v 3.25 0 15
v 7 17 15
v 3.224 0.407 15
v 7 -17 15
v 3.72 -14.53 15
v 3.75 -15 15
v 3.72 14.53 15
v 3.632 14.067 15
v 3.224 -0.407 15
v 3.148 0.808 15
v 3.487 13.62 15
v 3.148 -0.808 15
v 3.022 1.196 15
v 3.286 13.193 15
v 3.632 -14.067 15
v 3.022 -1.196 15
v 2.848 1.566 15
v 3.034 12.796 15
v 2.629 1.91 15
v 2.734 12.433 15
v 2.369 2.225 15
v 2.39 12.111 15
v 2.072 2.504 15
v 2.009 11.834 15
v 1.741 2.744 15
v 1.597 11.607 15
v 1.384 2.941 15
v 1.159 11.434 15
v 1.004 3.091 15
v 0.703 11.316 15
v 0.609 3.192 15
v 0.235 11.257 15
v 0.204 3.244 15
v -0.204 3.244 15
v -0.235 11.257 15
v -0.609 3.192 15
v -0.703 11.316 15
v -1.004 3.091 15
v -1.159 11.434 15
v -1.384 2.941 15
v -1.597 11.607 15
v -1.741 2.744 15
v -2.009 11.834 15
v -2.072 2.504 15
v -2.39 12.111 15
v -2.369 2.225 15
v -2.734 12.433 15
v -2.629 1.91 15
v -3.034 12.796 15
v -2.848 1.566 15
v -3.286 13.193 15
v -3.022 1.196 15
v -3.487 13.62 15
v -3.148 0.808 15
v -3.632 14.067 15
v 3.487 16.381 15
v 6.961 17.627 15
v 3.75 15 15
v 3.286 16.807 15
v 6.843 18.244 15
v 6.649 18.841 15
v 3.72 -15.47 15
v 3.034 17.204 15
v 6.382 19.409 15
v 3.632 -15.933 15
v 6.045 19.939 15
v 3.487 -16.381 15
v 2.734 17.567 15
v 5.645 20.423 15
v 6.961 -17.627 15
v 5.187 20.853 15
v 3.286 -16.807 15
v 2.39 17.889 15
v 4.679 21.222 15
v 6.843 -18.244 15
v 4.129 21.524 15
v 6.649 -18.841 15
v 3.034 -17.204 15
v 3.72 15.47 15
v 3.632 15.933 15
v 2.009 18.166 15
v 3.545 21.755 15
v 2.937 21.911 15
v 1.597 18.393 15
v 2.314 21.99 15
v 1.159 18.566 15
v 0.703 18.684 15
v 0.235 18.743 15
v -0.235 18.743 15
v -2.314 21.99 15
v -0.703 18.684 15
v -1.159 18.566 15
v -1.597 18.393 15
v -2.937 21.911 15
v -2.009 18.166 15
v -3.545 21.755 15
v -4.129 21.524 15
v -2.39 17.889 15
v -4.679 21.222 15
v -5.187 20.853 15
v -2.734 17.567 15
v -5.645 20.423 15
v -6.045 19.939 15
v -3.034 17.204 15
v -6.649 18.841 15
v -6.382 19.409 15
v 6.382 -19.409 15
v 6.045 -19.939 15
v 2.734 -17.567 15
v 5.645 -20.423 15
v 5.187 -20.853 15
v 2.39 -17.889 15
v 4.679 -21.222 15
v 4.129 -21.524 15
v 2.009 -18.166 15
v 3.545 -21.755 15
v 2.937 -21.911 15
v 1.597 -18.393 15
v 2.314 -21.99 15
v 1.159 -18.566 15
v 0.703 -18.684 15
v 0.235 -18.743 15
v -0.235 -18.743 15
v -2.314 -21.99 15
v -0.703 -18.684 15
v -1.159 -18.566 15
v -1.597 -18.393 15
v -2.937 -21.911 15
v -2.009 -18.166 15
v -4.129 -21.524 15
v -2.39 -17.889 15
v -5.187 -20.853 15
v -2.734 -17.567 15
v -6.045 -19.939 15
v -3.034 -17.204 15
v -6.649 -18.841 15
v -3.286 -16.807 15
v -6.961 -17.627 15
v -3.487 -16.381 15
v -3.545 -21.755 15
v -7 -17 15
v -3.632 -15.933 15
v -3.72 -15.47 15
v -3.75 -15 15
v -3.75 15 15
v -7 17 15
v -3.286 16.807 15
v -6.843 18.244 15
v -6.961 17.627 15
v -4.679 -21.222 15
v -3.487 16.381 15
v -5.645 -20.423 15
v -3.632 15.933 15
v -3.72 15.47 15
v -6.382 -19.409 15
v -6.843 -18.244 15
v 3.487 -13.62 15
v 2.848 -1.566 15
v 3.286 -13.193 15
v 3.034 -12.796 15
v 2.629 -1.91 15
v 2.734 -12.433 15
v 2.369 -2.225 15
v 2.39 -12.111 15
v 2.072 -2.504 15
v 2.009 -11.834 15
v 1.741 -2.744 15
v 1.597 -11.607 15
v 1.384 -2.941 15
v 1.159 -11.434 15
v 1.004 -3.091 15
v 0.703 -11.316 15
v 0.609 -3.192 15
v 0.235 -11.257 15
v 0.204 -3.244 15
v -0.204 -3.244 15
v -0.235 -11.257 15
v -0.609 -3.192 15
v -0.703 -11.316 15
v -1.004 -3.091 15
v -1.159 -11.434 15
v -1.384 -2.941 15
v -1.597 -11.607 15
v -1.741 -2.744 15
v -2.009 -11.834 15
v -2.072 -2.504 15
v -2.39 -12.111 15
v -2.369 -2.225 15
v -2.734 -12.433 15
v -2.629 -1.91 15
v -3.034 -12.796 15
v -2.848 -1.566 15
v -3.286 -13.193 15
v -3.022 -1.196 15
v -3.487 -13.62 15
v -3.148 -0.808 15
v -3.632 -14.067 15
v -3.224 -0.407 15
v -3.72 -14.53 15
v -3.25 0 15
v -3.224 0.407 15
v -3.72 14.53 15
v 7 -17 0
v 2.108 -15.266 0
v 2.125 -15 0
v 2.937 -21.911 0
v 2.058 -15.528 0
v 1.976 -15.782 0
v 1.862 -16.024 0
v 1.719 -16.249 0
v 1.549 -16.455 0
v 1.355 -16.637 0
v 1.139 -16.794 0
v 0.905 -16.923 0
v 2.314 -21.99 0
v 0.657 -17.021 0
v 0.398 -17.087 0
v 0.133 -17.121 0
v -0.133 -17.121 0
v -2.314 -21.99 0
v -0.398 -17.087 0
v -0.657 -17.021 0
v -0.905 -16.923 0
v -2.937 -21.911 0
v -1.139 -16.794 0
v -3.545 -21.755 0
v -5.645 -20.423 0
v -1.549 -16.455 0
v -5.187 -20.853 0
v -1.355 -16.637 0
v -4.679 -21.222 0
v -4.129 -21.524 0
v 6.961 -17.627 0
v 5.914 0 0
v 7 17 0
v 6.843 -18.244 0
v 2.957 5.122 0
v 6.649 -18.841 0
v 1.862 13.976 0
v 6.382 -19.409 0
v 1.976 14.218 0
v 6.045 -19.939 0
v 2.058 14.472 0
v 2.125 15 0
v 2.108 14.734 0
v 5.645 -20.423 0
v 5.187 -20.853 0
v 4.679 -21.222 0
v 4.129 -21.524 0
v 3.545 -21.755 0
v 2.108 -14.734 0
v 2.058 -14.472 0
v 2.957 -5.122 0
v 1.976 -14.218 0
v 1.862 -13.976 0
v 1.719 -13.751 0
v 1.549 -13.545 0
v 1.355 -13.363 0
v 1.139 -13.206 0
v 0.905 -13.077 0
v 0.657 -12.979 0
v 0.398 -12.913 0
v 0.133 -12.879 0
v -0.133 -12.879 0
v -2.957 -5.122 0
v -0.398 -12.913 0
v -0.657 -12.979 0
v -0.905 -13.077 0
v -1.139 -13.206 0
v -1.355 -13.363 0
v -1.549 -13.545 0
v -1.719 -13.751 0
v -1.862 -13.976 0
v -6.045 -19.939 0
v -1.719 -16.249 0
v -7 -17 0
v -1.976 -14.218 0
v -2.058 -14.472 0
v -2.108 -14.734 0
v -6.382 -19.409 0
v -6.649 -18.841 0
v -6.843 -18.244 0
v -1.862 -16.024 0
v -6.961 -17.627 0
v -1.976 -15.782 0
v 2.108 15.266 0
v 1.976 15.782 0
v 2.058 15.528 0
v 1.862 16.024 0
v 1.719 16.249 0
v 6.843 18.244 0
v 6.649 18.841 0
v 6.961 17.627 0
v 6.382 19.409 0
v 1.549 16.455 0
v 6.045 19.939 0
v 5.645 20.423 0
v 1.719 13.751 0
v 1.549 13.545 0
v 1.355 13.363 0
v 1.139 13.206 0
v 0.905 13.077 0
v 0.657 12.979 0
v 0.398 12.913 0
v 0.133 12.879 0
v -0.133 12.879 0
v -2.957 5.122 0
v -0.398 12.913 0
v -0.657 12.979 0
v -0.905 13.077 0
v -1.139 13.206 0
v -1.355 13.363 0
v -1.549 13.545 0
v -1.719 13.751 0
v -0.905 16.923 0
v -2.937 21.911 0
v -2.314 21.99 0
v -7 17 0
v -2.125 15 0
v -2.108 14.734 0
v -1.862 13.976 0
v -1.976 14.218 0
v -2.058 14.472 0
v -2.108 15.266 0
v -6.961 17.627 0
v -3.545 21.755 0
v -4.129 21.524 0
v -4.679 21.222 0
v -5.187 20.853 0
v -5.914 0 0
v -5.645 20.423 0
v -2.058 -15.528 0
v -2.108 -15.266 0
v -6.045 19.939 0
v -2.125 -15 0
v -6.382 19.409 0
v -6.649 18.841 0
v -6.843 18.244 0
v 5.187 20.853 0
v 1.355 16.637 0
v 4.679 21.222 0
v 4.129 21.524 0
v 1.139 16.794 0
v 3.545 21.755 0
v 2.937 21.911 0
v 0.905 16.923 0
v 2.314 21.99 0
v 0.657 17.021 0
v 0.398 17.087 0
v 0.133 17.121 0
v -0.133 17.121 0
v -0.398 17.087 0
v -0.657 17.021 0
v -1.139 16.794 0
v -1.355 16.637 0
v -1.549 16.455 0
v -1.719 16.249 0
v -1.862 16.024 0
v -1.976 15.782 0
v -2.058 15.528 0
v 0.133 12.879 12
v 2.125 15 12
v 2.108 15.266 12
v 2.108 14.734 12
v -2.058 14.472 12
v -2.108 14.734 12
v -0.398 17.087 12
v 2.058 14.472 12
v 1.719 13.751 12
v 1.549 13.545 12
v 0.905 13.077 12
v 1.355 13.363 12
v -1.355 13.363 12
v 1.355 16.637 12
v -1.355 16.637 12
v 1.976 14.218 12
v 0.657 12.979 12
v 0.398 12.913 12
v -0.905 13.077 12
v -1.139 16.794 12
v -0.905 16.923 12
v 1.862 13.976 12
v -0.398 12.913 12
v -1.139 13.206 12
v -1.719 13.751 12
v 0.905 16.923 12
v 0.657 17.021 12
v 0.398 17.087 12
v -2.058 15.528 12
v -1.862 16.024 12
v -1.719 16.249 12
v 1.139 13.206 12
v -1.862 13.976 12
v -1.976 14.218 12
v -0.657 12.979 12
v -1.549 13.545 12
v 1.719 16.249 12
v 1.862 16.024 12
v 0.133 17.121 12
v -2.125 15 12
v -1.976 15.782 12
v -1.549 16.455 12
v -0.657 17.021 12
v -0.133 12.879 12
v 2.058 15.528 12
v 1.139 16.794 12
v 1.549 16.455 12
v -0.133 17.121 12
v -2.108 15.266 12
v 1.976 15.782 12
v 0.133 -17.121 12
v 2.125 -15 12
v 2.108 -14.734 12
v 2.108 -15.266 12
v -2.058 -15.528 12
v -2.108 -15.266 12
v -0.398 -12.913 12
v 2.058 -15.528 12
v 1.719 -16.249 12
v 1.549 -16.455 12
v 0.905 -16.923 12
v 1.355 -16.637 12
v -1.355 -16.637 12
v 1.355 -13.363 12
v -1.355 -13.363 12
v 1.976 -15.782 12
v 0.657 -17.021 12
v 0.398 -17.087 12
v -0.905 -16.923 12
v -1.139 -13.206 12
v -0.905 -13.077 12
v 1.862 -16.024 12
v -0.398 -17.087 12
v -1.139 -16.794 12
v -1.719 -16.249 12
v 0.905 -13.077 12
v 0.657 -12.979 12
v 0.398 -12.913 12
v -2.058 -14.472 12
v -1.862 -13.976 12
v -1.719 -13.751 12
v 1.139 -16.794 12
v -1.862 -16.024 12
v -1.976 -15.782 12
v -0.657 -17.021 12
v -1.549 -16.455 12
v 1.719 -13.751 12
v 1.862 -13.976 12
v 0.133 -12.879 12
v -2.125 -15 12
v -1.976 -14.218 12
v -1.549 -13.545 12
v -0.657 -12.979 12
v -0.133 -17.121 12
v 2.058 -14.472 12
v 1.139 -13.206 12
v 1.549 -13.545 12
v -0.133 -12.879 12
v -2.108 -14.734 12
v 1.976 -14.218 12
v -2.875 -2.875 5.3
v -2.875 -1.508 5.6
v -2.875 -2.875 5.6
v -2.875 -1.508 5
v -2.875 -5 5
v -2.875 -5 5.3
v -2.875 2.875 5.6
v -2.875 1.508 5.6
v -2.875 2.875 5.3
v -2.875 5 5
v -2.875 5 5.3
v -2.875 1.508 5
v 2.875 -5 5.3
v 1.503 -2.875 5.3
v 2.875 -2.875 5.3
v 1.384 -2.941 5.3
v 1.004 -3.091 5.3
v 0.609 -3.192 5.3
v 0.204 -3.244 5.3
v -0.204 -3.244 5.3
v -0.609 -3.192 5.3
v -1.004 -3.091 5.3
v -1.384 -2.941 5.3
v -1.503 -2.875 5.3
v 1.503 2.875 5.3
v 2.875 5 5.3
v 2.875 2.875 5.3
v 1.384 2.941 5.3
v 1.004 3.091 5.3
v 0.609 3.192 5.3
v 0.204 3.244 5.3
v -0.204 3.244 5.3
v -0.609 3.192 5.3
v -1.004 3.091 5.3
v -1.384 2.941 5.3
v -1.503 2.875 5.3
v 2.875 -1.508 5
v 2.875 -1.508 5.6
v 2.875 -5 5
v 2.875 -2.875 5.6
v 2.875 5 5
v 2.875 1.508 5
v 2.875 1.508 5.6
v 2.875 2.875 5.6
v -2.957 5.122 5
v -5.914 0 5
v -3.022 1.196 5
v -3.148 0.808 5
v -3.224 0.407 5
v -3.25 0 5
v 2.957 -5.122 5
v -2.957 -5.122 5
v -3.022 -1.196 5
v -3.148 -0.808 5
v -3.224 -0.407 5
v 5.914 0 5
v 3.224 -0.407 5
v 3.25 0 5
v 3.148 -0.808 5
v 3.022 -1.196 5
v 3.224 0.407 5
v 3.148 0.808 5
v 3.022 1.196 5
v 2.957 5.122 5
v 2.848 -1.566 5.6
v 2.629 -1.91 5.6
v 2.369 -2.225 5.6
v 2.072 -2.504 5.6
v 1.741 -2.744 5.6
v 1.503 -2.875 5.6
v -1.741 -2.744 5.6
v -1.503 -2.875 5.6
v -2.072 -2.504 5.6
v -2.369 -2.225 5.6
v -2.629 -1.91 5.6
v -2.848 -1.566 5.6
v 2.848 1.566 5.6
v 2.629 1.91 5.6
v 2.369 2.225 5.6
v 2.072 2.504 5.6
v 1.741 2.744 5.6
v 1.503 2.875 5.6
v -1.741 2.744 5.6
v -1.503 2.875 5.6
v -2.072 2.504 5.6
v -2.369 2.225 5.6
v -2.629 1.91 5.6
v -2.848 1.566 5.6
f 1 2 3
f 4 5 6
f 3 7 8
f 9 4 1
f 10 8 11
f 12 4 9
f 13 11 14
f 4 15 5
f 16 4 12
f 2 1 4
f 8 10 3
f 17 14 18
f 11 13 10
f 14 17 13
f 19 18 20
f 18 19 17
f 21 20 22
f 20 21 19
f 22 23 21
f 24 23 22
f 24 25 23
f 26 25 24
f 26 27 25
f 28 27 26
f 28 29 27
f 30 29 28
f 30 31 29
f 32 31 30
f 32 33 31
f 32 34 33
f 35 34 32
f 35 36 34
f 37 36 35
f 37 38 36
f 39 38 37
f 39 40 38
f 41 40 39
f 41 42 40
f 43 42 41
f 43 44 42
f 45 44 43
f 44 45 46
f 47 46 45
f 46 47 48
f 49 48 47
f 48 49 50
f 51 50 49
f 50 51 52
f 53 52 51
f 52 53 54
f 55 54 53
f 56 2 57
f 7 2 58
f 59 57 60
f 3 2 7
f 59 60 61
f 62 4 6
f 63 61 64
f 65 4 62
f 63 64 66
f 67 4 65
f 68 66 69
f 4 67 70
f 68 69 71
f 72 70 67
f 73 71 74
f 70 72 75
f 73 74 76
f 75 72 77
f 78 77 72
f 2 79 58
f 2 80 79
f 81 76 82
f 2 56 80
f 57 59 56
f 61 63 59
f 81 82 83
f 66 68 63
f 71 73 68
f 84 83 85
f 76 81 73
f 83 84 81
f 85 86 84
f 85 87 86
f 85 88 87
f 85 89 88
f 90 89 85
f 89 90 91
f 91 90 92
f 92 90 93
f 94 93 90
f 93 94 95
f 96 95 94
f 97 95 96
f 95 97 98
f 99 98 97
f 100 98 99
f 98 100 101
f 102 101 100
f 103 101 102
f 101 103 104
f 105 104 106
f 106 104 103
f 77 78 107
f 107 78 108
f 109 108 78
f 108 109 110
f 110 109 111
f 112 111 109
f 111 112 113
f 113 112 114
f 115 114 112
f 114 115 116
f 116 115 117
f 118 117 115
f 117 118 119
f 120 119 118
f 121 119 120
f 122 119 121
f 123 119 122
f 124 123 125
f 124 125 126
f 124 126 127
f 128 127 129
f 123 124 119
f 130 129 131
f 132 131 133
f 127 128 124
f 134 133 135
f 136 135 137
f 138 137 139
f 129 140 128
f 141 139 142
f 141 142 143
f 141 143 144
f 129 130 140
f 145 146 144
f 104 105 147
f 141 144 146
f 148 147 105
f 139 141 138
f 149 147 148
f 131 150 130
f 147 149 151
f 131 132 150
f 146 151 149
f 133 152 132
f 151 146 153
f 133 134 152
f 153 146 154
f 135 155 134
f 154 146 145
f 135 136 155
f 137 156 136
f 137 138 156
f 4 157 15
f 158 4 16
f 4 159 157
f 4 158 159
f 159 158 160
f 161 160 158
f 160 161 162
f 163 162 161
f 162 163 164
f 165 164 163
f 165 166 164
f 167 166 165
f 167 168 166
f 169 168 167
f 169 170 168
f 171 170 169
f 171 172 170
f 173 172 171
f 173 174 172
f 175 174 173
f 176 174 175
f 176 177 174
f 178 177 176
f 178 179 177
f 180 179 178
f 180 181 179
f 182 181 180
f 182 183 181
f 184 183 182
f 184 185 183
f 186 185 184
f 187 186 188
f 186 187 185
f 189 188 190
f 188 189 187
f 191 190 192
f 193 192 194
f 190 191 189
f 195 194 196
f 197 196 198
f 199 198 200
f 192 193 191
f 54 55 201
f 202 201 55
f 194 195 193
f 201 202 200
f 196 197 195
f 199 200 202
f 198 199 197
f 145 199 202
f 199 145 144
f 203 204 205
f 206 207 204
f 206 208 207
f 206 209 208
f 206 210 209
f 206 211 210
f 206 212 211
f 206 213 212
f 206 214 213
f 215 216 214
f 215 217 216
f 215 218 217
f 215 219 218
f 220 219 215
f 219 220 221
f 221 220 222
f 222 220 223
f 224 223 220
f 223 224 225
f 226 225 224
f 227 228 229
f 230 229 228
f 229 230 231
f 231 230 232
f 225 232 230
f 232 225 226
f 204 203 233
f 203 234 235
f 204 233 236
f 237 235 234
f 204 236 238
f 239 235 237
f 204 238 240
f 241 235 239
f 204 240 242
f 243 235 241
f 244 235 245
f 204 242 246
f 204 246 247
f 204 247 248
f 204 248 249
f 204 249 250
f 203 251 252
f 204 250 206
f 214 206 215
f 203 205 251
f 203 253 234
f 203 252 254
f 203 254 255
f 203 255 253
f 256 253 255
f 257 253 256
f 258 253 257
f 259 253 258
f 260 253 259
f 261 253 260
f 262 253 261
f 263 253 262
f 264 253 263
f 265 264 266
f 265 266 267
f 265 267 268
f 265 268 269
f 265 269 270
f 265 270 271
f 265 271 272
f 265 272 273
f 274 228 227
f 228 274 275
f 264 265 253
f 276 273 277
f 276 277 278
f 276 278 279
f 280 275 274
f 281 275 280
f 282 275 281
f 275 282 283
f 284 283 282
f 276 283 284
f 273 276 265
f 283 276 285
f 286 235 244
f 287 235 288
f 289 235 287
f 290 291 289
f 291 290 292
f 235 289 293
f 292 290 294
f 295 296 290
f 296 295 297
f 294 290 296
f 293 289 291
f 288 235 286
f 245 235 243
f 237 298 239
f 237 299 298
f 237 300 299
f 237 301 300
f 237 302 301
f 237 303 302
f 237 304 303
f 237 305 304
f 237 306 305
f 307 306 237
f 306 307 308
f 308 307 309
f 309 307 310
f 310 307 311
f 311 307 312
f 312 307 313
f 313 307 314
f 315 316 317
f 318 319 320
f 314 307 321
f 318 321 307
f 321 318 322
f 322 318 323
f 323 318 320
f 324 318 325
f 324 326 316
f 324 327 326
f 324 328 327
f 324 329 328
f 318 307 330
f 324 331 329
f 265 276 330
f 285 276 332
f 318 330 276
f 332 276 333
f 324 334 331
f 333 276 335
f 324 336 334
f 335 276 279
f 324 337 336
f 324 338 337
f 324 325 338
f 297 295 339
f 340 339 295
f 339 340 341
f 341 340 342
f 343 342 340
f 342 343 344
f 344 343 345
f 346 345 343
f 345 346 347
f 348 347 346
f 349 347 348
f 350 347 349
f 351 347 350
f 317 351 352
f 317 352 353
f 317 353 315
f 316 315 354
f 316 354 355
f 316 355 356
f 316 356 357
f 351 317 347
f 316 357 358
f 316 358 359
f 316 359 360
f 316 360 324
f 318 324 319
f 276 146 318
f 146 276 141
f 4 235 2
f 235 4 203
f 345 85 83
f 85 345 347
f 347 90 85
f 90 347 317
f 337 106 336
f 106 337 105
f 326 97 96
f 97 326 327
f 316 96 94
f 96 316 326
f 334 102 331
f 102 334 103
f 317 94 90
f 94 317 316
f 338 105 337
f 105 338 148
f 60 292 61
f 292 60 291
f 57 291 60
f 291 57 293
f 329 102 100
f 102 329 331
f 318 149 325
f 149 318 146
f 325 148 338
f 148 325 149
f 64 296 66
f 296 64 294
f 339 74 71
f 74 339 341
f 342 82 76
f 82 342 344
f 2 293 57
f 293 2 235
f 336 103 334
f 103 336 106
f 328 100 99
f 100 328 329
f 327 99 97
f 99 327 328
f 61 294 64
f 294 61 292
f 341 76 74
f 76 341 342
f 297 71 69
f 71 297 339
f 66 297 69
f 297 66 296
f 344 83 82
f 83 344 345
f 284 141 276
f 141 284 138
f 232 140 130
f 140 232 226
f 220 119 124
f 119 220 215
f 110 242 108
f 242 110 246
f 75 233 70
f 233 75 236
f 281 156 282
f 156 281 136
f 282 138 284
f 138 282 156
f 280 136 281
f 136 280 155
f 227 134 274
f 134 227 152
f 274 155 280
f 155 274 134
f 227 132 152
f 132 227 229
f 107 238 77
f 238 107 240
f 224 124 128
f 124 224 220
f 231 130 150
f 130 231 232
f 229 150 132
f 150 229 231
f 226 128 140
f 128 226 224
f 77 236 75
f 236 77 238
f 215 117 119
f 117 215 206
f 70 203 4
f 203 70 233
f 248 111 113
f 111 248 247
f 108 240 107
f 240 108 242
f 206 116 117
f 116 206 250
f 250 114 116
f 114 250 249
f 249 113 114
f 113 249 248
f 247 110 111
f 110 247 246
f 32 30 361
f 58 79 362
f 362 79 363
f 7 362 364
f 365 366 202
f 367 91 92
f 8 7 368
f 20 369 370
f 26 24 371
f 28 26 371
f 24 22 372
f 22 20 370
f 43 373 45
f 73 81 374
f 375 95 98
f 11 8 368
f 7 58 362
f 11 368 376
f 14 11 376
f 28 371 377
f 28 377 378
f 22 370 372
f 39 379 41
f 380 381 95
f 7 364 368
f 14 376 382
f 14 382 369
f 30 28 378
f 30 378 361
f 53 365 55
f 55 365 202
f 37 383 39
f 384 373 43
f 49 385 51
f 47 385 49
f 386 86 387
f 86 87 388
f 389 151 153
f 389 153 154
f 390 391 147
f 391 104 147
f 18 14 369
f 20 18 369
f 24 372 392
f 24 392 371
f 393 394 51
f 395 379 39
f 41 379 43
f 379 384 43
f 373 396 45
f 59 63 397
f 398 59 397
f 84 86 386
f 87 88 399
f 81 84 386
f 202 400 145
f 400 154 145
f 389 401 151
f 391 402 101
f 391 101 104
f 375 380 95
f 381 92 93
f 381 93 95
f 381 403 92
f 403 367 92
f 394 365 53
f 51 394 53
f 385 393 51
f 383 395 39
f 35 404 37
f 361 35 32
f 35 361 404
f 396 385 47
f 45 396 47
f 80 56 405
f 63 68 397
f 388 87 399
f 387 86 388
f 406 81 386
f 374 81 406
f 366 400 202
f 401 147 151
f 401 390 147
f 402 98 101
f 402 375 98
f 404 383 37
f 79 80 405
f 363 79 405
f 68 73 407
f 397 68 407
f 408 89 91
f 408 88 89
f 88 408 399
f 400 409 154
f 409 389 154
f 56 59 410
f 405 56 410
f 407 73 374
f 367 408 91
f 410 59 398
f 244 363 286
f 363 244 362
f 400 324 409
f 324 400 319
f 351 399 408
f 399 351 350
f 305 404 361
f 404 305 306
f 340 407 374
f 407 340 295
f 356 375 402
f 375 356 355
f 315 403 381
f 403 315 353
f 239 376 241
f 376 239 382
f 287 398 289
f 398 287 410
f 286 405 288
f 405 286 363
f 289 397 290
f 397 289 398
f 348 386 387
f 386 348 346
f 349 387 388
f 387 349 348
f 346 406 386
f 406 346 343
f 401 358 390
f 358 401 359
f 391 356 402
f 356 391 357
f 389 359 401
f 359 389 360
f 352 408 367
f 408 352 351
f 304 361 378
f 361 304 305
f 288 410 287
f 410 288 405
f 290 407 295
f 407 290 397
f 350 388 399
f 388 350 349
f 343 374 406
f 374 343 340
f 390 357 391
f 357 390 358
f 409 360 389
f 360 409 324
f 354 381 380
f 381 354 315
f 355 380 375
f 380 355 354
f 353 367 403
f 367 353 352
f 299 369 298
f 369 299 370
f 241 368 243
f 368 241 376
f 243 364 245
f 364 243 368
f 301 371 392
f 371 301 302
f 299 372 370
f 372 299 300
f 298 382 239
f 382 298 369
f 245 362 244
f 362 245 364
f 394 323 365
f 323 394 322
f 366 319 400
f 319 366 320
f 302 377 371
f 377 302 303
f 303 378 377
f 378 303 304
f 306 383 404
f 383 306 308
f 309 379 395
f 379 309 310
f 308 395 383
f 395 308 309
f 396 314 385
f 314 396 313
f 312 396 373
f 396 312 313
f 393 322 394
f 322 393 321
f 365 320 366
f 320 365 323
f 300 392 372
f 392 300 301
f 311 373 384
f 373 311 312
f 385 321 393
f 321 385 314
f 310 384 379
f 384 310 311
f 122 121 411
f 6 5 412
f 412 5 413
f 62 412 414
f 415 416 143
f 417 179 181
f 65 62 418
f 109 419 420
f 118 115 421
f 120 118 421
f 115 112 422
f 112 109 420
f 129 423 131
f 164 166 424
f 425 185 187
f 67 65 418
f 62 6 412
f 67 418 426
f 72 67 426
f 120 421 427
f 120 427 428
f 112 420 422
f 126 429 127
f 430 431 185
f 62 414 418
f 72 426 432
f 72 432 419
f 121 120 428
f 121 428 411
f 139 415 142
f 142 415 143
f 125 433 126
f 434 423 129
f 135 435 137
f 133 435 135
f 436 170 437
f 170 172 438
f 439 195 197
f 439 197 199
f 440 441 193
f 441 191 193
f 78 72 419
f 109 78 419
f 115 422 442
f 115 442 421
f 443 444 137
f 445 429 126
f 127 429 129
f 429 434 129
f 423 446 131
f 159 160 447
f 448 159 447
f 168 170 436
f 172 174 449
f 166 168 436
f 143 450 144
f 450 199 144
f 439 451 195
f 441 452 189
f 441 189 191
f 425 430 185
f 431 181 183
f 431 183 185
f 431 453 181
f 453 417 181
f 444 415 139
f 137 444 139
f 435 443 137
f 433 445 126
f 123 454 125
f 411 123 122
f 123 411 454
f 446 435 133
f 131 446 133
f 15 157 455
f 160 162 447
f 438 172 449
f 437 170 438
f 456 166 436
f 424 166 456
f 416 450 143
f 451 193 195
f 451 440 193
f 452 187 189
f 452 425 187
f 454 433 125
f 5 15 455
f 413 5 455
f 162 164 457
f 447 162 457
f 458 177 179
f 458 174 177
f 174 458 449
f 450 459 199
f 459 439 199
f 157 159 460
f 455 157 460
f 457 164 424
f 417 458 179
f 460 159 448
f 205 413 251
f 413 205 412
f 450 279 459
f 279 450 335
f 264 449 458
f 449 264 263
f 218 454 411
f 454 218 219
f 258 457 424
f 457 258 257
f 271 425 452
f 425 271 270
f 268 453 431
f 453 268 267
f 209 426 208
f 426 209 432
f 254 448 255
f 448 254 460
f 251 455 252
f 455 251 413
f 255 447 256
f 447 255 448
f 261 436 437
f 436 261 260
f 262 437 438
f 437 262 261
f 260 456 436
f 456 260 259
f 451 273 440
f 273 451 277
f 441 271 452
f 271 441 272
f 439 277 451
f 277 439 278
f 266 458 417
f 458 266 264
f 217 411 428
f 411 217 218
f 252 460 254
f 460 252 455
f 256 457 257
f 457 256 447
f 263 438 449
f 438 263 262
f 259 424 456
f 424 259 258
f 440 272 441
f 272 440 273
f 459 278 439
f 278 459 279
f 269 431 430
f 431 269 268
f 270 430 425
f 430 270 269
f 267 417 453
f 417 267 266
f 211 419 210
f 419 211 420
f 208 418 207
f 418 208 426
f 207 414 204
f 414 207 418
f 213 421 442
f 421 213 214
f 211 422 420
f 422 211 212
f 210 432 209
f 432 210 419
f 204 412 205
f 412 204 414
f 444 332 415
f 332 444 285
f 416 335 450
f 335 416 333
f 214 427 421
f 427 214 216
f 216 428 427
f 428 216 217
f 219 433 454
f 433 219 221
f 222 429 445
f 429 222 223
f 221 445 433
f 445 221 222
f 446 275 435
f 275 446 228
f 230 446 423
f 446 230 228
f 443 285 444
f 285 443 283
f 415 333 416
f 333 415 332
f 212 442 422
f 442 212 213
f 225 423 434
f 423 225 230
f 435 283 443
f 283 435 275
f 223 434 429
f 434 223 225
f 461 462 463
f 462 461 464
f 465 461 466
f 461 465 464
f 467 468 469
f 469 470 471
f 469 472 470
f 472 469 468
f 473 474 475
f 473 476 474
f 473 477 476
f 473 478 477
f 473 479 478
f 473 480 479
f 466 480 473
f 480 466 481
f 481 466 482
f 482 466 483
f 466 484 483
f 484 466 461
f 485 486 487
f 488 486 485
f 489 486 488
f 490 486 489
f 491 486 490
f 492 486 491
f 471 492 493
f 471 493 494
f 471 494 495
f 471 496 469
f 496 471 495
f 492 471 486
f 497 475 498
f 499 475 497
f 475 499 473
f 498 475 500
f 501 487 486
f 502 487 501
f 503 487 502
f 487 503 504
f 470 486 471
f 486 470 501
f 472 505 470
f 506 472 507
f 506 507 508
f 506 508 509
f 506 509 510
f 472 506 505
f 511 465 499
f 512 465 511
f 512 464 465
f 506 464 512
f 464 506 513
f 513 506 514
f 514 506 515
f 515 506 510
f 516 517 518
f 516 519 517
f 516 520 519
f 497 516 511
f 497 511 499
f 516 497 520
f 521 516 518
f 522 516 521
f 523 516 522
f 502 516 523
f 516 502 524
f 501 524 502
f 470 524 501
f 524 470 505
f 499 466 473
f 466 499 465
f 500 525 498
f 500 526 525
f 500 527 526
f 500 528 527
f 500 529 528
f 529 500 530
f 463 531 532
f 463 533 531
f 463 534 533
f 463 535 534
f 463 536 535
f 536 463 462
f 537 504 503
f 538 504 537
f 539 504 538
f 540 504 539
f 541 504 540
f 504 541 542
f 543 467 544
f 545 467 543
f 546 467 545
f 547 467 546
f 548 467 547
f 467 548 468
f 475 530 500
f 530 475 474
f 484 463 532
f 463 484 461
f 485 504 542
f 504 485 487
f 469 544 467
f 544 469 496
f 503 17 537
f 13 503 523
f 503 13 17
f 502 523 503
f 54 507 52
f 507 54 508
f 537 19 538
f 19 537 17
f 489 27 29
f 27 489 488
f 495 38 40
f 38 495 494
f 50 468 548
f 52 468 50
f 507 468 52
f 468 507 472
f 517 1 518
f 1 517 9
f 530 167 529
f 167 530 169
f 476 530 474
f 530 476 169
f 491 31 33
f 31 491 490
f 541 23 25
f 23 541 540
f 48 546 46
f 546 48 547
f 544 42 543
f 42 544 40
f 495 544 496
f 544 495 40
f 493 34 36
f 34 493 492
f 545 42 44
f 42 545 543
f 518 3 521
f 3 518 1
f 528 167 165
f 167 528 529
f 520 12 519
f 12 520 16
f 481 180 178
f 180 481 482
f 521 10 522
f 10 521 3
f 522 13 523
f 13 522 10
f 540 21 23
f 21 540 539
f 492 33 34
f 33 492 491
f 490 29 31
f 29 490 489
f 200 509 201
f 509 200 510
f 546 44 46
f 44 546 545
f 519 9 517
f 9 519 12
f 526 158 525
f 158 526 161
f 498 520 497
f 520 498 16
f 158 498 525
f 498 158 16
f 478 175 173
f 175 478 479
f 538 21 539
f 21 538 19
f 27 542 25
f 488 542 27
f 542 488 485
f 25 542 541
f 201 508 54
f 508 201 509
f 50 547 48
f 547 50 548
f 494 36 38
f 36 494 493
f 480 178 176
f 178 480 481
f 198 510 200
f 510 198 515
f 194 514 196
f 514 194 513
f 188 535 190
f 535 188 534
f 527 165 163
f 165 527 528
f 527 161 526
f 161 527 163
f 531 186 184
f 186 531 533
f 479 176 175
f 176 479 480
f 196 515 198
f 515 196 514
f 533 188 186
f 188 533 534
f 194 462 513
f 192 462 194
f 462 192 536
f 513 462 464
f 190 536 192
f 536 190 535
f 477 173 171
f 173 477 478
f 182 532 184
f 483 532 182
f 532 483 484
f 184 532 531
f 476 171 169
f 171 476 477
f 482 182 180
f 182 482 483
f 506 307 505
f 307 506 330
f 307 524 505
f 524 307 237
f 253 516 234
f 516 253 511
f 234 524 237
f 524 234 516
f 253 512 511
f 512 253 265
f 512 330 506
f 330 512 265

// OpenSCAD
$fn = 50;


difference() {
	union() {
		cylinder(h = 15, r = 7.0000000000);
		translate(v = [0.0000000000, 7.5000000000, 0]) {
			hull() {
				translate(v = [-2.0000000000, 9.5000000000, 0]) {
					cylinder(h = 15, r = 5);
				}
				translate(v = [2.0000000000, 9.5000000000, 0]) {
					cylinder(h = 15, r = 5);
				}
				translate(v = [-2.0000000000, -9.5000000000, 0]) {
					cylinder(h = 15, r = 5);
				}
				translate(v = [2.0000000000, -9.5000000000, 0]) {
					cylinder(h = 15, r = 5);
				}
			}
		}
		translate(v = [0.0000000000, 7.5000000000, 0]) {
			hull() {
				translate(v = [-2.0000000000, 9.5000000000, 0]) {
					cylinder(h = 15, r = 5);
				}
				translate(v = [2.0000000000, 9.5000000000, 0]) {
					cylinder(h = 15, r = 5);
				}
				translate(v = [-2.0000000000, -9.5000000000, 0]) {
					cylinder(h = 15, r = 5);
				}
				translate(v = [2.0000000000, -9.5000000000, 0]) {
					cylinder(h = 15, r = 5);
				}
			}
		}
		translate(v = [0.0000000000, -7.5000000000, 0]) {
			hull() {
				translate(v = [-2.0000000000, 9.5000000000, 0]) {
					cylinder(h = 15, r = 5);
				}
				translate(v = [2.0000000000, 9.5000000000, 0]) {
					cylinder(h = 15, r = 5);
				}
				translate(v = [-2.0000000000, -9.5000000000, 0]) {
					cylinder(h = 15, r = 5);
				}
				translate(v = [2.0000000000, -9.5000000000, 0]) {
					cylinder(h = 15, r = 5);
				}
			}
		}
		translate(v = [0.0000000000, -7.5000000000, 0]) {
			hull() {
				translate(v = [-2.0000000000, 9.5000000000, 0]) {
					cylinder(h = 15, r = 5);
				}
				translate(v = [2.0000000000, 9.5000000000, 0]) {
					cylinder(h = 15, r = 5);
				}
				translate(v = [-2.0000000000, -9.5000000000, 0]) {
					cylinder(h = 15, r = 5);
				}
				translate(v = [2.0000000000, -9.5000000000, 0]) {
					cylinder(h = 15, r = 5);
				}
			}
		}
	}
	union() {
		translate(v = [0.0000000000, 15.0000000000, 15]) {
			rotate(a = [0, 0, 0]) {
				difference() {
					union() {
						#translate(v = [0, 0, -15.0000000000]) {
							cylinder(h = 15, r = 2.0000000000);
						}
						#translate(v = [0, 0, -3]) {
							cylinder(h = 3, r1 = 2.1250000000, r2 = 3.7500000000);
						}
						#translate(v = [0, 0, -15.0000000000]) {
							cylinder(h = 15, r = 2.1250000000);
						}
						#translate(v = [0, 0, -15.0000000000]) {
							cylinder(h = 15, r = 2.0000000000);
						}
					}
					union();
				}
			}
		}
		translate(v = [0.0000000000, 15.0000000000, 15]) {
			rotate(a = [0, 0, 0]) {
				difference() {
					union() {
						#translate(v = [0, 0, -15.0000000000]) {
							cylinder(h = 15, r = 2.0000000000);
						}
						#translate(v = [0, 0, -3]) {
							cylinder(h = 3, r1 = 2.1250000000, r2 = 3.7500000000);
						}
						#translate(v = [0, 0, -15.0000000000]) {
							cylinder(h = 15, r = 2.1250000000);
						}
						#translate(v = [0, 0, -15.0000000000]) {
							cylinder(h = 15, r = 2.0000000000);
						}
					}
					union();
				}
			}
		}
		translate(v = [0.0000000000, -15.0000000000, 15]) {
			rotate(a = [0, 0, 0]) {
				difference() {
					union() {
						#translate(v = [0, 0, -15.0000000000]) {
							cylinder(h = 15, r = 2.0000000000);
						}
						#translate(v = [0, 0, -3]) {
							cylinder(h = 3, r1 = 2.1250000000, r2 = 3.7500000000);
						}
						#translate(v = [0, 0, -15.0000000000]) {
							cylinder(h = 15, r = 2.1250000000);
						}
						#translate(v = [0, 0, -15.0000000000]) {
							cylinder(h = 15, r = 2.0000000000);
						}
					}
					union();
				}
			}
		}
		translate(v = [0.0000000000, -15.0000000000, 15]) {
			rotate(a = [0, 0, 0]) {
				difference() {
					union() {
						#translate(v = [0, 0, -15.0000000000]) {
							cylinder(h = 15, r = 2.0000000000);
						}
						#translate(v = [0, 0, -3]) {
							cylinder(h = 3, r1 = 2.1250000000, r2 = 3.7500000000);
						}
						#translate(v = [0, 0, -15.0000000000]) {
							cylinder(h = 15, r = 2.1250000000);
						}
						#translate(v = [0, 0, -15.0000000000]) {
							cylinder(h = 15, r = 2.0000000000);
						}
					}
					union();
				}
			}
		}
		translate(v = [0.0000000000, 0.0000000000, 0]) {
			rotate(a = [0, 0, 0]) {
				difference() {
					union() {
						#translate(v = [-2.8750000000, -5.0000000000, -0.3000000000]) {
							cube(size = [5.7500000000, 10, 0.3000000000]);
						}
						#translate(v = [-2.8750000000, -2.8750000000, -0.6000000000]) {
							cube(size = [5.7500000000, 5.7500000000, 0.3000000000]);
						}
						#translate(v = [-2.8750000000, -5.0000000000, 5]) {
							cube(size = [5.7500000000, 10, 0.3000000000]);
						}
						#translate(v = [-2.8750000000, -2.8750000000, 5.3000000000]) {
							cube(size = [5.7500000000, 5.7500000000, 0.3000000000]);
						}
						#translate(v = [0, 0, -100.0000000000]) {
							cylinder(h = 200, r = 3.2500000000);
						}
						#linear_extrude(height = 5) {
							polygon(points = [[5.9142500000, 0.0000000000], [2.9571250000, 5.1218907443], [-2.9571250000, 5.1218907443], [-5.9142500000, 0.0000000000], [-2.9571250000, -5.1218907443], [2.9571250000, -5.1218907443]]);
						}
						#translate(v = [-2.8750000000, -5.0000000000, -0.3000000000]) {
							cube(size = [5.7500000000, 10, 0.3000000000]);
						}
						#translate(v = [-2.8750000000, -2.8750000000, -0.6000000000]) {
							cube(size = [5.7500000000, 5.7500000000, 0.3000000000]);
						}
						#translate(v = [-2.8750000000, -5.0000000000, 5]) {
							cube(size = [5.7500000000, 10, 0.3000000000]);
						}
						#translate(v = [-2.8750000000, -2.8750000000, 5.3000000000]) {
							cube(size = [5.7500000000, 5.7500000000, 0.3000000000]);
						}
						#translate(v = [0, 0, -100.0000000000]) {
							cylinder(h = 200, r = 3.2500000000);
						}
						#translate(v = [-2.8750000000, -5.0000000000, -0.3000000000]) {
							cube(size = [5.7500000000, 10, 0.3000000000]);
						}
						#translate(v = [-2.8750000000, -2.8750000000, -0.6000000000]) {
							cube(size = [5.7500000000, 5.7500000000, 0.3000000000]);
						}
						#translate(v = [-2.8750000000, -5.0000000000, 5]) {
							cube(size = [5.7500000000, 10, 0.3000000000]);
						}
						#translate(v = [-2.8750000000, -2.8750000000, 5.3000000000]) {
							cube(size = [5.7500000000, 5.7500000000, 0.3000000000]);
						}
						#translate(v = [0, 0, -100.0000000000]) {
							cylinder(h = 200, r = 3.2500000000);
						}
					}
					union();
				}
			}
		}
		translate(v = [0, 0, -100]) {
			cylinder(h = 200, r = 3.2500000000);
		}
		translate(v = [0, 0, -100]) {
			cylinder(h = 200, r = 1.8000000000);
		}
	}
}
